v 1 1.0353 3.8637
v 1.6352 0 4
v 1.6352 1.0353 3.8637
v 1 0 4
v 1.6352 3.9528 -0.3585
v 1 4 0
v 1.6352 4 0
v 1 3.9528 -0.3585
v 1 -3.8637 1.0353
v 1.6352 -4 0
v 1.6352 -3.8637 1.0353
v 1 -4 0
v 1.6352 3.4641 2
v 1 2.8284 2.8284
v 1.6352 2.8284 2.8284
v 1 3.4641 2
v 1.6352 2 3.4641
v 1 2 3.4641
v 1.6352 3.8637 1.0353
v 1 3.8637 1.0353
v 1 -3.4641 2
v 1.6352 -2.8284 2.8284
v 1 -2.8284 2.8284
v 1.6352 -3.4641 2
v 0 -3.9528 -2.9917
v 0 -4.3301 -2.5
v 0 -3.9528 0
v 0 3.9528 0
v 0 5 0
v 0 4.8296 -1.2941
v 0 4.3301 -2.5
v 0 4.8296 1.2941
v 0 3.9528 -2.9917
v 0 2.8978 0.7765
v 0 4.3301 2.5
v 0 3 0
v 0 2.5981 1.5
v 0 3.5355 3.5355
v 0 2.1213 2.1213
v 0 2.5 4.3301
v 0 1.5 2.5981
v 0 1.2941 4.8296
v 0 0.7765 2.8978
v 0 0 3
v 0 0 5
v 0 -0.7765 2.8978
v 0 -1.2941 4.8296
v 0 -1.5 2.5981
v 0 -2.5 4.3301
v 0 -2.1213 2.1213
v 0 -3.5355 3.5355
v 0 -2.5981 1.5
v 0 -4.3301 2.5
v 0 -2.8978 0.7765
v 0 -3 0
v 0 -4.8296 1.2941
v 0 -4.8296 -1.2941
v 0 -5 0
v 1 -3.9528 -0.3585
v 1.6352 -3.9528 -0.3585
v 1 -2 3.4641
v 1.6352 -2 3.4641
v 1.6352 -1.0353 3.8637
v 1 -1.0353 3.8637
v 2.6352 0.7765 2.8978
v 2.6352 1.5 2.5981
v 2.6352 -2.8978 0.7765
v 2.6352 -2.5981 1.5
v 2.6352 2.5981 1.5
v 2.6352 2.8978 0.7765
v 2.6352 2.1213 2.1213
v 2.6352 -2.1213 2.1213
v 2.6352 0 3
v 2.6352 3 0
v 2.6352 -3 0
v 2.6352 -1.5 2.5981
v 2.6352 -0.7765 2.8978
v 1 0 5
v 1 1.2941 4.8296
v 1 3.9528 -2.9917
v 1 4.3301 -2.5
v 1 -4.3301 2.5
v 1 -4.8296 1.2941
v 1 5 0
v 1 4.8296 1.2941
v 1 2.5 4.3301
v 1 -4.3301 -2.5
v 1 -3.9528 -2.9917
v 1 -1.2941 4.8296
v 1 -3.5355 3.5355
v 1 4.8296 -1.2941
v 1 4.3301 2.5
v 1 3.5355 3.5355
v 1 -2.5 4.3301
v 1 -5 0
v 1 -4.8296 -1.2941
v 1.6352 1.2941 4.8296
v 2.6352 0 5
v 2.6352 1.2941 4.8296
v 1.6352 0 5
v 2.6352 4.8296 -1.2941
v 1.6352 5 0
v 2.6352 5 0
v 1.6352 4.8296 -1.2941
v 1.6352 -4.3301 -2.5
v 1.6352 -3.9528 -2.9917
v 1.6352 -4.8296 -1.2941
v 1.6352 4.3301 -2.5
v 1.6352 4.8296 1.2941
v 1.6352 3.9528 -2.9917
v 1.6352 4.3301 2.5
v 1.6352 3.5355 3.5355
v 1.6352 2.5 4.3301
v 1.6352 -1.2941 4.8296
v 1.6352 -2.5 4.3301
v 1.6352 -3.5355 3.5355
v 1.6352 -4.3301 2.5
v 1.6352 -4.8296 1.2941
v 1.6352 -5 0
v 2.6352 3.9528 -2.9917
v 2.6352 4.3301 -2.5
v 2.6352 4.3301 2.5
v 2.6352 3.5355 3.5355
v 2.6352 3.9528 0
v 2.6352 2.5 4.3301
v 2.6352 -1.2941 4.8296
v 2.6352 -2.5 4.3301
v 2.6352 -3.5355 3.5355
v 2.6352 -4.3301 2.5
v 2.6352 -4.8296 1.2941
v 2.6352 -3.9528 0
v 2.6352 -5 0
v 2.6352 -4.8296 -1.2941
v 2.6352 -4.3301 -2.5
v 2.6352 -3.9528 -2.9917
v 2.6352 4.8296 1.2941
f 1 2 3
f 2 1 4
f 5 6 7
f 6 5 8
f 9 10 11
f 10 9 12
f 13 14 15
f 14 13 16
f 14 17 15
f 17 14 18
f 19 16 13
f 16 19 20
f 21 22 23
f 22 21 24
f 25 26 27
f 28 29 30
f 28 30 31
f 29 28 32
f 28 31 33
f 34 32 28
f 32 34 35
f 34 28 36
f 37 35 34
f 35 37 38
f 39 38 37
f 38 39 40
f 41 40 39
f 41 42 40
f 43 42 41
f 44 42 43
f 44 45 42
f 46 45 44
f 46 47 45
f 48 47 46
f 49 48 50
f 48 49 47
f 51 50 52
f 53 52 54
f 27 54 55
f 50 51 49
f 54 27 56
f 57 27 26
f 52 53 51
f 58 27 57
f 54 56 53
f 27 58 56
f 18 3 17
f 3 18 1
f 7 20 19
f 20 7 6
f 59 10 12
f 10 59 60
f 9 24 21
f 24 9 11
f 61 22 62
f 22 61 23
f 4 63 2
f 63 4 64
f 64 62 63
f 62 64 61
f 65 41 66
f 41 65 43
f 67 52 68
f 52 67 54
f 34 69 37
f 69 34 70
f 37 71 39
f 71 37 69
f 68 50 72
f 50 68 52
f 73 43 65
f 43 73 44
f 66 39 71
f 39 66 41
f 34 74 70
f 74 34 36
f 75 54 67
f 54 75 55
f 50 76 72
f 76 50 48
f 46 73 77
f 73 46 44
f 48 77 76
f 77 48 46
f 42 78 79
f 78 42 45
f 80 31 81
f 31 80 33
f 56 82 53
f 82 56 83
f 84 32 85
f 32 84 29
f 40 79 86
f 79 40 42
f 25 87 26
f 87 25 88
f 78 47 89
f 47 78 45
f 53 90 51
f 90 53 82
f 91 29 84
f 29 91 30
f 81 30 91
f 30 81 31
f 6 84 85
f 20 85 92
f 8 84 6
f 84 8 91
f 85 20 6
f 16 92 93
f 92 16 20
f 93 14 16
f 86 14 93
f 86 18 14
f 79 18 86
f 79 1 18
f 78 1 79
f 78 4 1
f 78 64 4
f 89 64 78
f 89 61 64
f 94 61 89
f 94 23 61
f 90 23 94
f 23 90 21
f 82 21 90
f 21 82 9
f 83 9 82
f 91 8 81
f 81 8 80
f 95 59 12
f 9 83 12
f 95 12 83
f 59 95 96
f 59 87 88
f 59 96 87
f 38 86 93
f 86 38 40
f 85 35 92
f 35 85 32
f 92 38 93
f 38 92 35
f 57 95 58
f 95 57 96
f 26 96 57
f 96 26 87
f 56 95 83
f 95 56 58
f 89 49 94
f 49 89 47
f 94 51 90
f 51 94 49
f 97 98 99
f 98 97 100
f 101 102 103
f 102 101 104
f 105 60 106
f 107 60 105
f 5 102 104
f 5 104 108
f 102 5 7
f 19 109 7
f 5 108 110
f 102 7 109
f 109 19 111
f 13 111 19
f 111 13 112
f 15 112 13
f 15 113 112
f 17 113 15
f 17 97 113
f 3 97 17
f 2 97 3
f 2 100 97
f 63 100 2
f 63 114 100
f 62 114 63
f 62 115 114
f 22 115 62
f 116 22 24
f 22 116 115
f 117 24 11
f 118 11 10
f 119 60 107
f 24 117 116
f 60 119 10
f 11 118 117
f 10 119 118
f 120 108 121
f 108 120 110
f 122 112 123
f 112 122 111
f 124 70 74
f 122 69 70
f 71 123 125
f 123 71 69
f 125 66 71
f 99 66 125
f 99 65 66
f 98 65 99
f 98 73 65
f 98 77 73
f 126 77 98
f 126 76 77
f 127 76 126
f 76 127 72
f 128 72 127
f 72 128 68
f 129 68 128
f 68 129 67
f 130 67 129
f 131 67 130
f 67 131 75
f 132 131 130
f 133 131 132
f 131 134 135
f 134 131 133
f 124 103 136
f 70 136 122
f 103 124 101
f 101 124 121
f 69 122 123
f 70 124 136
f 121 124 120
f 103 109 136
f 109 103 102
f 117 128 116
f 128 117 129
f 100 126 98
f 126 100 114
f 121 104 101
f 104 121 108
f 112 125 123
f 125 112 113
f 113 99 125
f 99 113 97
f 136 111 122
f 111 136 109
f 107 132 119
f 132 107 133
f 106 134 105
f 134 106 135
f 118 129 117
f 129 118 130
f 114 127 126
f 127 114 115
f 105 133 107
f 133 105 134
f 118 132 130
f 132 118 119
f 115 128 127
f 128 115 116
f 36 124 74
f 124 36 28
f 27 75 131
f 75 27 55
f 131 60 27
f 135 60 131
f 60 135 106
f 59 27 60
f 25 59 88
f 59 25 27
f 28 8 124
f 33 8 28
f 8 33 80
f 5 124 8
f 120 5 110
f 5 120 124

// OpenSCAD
// file: ../build_environments.scad
// build_environments.scad: modules to build level sections
//

module pool(diameter=10.0, wall_height=2.0, step_width=3.0, connections=[])
{
    difference() {
        union() {
        difference() {
            cylinder(h=0.5,r1=diameter+step_width,r2=diameter+step_width,$fn=48);
            translate([0,0,-0.1])
                cylinder(h=0.7,r1=diameter,r2=diameter,$fn=48);
        }
        difference() {
            cylinder(h=wall_height,r1=diameter+step_width+1.0,r2=diameter+step_width+1.0,$fn=48);
            translate([0,0,-0.1])
                cylinder(h=wall_height+0.2,r1=diameter+step_width,r2=diameter+step_width,$fn=48);
        }
        }
    
        for (c = connections)
        {
            rotate([0,90,0]) {
                angle = atan2(c[1],c[0]);
                rotate([-angle,0,0]) {
                    cylinder(h=diameter+5.0,r1=c[2],r2=c[2],$fn=48);
                }
            }
        }
    }
}

module straight(length=10.0, width=2.0, dy1=0.0, dy2=0.0, dz=0.0)
{
    dims = [0, 0, 0, 0, 0, (dz/length)];
    matrix = [
        [ 1, dims[0], dims[1], 0 ],
        [ dims[2], 1, dims[4], 0 ],
        [ dims[5], dims[3], 1, 0 ],
        [ 0, 0, 0, 1 ]
    ];
    multmatrix(matrix)
    difference() {
        translate([dy1,0,0])
        union() {
            rotate([0,90,0]) {
                difference() {
                    cylinder(h=(length-dy1-dy2),r1=width+1.0,r2=width+1.0,$fn=24);
                    translate([0,0,-0.1])
                        cylinder(h=(length-dy1-dy2+0.2),r1=width,r2=width,$fn=24);
                }
                difference() {
                    cylinder(h=1.0,r1=width+2.0,r2=width+2.0,$fn=24);
                    translate([0,0,-0.1])
                        cylinder(h=1.2,r1=width,r2=width,$fn=24);
                }
                translate([0,0,(length-dy1-dy2)-1.0]) {
                    difference() {
                        cylinder(h=1.0,r1=width+2.0,r2=width+2.0,$fn=24);
                        translate([0,0,-0.1])
                            cylinder(h=1.2,r1=width,r2=width,$fn=24);
                    }
                }
            }
        }
        translate([0,0,-(2*width+4.0)/2])
            cube([3*length,3*length,2*width+4.0],center=true);
    }
}

module curve(p0=[0,0], center=[0,0], dir=1, angle=0.0, width=2.0)
{
    radius = sqrt((p0[0]-center[0])*(p0[0]-center[0]) + (p0[1]-center[1])*(p0[1]-center[1]));
    if (dir == 0) {
        difference() {
            rotate([0,0,-90])
            difference() {
                rotate_extrude(angle = angle, convexity = 10, $fn=32)
                    translate([radius, 0, 0])
                        circle(r = width+1.0,$fn=24);
                rotate([0,0,-1.0])
                    rotate_extrude(angle = angle+2.0, convexity = 10, $fn=32)
                        translate([radius, 0, 0])
                            circle(r = width,$fn=24);
            }
            translate([0,0,-(2*width+4.0)/2])
                cube([5*radius,5*radius,2*width+4.0],center=true);
        }
    }
    else {
        difference() {
            rotate([0,0,90])
            difference() {
                rotate_extrude(angle = -angle, convexity = 10, $fn=32)
                    translate([radius, 0, 0])
                        circle(r = width+1.0,$fn=24);
                rotate([0,0,1.0])
                    rotate_extrude(angle = -angle-2.0, convexity = 10, $fn=32)
                        translate([radius, 0, 0])
                            circle(r = width,$fn=24);
            }
            translate([0,0,-(2*width+4.0)/2])
                cube([5*radius,5*radius,2*width+4.0],center=true);
        }
    }

}

// test pool
//pool(diameter=12.0000, wall_height=3.0000, step_width=3.0000, connections=[[0.0000,-26.0000,2.0000], [23.6074,0.0000,2.0000]]);

// test straight, slope
//straight(length=26.0000, width=2.0000, dy1=11.8322, dy2=6.7082, dz=0.0000);
//straight(length=29.1549, width=12.0000, dy1=0.0000, dy2=0.0000, dz=-15.0000);

// test curve
//curve(p0=[23.6074, 0.0000], center=[23.6074, 5.0000], dir=0, angle=60.1011, width=2.0000);
//curve(p0=[33.6426, 12.4219], center=[37.9771, 9.9295], dir=1, angle=120.4627, width=2.0000);
// main file
use <../build_environments.scad>;
straight(length=2.6352, width=3.0000, dy1=0.0000, dy2=0.0000, dz=0.0000);
